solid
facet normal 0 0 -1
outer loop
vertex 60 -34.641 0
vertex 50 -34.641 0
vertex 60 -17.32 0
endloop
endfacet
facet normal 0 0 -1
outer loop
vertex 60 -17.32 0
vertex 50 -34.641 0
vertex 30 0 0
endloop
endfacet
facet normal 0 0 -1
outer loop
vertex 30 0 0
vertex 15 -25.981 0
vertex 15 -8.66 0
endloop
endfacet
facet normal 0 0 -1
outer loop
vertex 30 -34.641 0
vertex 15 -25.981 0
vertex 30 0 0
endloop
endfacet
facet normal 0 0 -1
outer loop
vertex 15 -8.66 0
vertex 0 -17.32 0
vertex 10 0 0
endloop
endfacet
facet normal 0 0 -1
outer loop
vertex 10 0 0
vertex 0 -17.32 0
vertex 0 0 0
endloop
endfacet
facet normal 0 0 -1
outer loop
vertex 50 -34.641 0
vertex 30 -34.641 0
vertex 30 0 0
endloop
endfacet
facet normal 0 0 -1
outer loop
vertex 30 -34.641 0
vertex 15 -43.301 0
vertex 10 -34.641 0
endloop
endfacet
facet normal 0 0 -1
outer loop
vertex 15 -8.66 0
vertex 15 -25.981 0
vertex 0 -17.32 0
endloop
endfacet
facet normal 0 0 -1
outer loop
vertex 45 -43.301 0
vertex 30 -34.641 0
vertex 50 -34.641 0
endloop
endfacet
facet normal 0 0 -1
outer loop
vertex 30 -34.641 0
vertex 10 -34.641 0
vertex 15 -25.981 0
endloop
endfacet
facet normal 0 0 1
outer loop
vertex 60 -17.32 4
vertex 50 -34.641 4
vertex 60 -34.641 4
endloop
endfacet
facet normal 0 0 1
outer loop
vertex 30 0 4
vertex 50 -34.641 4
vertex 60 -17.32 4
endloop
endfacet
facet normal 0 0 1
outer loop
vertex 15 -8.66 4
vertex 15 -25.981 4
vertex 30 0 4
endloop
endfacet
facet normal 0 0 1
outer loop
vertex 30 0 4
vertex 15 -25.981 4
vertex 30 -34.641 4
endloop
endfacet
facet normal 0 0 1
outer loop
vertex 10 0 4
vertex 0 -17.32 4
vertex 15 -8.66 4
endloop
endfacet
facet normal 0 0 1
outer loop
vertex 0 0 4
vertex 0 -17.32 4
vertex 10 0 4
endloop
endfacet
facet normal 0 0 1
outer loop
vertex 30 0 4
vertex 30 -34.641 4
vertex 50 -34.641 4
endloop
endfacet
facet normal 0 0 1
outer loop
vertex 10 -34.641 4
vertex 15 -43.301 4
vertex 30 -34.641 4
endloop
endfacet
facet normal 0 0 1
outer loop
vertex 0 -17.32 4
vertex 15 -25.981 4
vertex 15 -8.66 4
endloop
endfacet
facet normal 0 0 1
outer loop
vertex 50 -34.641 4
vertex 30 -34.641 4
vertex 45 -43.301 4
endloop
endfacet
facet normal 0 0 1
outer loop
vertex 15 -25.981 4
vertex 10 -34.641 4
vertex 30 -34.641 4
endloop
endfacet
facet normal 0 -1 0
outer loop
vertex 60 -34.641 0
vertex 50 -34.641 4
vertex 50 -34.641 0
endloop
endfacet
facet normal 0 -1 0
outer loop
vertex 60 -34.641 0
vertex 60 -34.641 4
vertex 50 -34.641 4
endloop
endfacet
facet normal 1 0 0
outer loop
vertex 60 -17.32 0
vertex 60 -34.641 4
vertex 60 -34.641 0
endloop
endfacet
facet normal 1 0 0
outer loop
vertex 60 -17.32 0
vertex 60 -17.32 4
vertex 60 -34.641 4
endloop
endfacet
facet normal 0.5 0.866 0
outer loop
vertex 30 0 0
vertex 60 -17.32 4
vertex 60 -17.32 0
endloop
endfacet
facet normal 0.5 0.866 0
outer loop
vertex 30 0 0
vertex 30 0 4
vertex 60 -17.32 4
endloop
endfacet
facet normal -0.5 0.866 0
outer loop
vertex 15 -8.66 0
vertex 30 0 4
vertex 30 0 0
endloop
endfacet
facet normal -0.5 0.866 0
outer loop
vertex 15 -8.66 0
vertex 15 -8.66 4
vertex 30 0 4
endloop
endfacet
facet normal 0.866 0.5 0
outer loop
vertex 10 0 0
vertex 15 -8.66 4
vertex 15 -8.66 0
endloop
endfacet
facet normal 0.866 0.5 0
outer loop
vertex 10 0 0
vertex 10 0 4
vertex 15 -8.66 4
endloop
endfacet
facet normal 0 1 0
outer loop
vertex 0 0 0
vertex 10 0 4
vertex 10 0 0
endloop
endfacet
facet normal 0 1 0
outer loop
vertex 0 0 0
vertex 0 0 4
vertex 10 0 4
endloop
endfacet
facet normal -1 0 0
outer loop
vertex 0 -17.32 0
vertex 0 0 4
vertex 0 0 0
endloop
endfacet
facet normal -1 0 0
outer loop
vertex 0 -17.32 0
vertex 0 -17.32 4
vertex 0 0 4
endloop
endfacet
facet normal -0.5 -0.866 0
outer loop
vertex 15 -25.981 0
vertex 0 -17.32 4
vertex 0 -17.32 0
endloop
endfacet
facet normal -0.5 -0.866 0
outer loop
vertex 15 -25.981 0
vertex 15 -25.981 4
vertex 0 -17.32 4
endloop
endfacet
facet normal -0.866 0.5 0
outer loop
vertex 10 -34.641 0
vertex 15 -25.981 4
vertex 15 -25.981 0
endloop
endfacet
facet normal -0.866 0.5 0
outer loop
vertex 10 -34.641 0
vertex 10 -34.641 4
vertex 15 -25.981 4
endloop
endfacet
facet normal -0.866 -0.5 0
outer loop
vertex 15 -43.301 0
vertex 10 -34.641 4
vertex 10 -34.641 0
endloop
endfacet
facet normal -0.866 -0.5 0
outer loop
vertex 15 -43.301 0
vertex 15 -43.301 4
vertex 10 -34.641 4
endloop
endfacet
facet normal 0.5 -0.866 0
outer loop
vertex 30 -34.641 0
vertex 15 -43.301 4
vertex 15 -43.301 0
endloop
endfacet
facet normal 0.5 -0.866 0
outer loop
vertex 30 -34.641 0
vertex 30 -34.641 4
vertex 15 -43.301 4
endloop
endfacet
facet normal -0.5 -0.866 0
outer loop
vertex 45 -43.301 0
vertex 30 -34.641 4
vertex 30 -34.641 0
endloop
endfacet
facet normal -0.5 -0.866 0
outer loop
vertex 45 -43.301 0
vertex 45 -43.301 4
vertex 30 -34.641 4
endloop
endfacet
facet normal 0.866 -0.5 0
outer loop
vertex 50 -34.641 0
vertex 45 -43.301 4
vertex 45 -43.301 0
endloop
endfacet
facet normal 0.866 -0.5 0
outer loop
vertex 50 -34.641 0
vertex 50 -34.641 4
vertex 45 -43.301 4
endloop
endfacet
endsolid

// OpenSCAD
r = [1,0];
d = [cos(60),-sin(60)];

points = [
    [0,0],
    r,
    r + d,
    3*r,
    5*r + 2*d,
    4*r + 4*d,
    3*r + 4*d,
    2*r + 5*d,
    r + 4*d,
    -r + 5*d,
    -r + 4*d,
    3*d,
    -r + 2*d,
 ];
 
 module tile() {
     linear_extrude(4) {
         scale(10) polygon(points);
     }
 }
 
 tile();
